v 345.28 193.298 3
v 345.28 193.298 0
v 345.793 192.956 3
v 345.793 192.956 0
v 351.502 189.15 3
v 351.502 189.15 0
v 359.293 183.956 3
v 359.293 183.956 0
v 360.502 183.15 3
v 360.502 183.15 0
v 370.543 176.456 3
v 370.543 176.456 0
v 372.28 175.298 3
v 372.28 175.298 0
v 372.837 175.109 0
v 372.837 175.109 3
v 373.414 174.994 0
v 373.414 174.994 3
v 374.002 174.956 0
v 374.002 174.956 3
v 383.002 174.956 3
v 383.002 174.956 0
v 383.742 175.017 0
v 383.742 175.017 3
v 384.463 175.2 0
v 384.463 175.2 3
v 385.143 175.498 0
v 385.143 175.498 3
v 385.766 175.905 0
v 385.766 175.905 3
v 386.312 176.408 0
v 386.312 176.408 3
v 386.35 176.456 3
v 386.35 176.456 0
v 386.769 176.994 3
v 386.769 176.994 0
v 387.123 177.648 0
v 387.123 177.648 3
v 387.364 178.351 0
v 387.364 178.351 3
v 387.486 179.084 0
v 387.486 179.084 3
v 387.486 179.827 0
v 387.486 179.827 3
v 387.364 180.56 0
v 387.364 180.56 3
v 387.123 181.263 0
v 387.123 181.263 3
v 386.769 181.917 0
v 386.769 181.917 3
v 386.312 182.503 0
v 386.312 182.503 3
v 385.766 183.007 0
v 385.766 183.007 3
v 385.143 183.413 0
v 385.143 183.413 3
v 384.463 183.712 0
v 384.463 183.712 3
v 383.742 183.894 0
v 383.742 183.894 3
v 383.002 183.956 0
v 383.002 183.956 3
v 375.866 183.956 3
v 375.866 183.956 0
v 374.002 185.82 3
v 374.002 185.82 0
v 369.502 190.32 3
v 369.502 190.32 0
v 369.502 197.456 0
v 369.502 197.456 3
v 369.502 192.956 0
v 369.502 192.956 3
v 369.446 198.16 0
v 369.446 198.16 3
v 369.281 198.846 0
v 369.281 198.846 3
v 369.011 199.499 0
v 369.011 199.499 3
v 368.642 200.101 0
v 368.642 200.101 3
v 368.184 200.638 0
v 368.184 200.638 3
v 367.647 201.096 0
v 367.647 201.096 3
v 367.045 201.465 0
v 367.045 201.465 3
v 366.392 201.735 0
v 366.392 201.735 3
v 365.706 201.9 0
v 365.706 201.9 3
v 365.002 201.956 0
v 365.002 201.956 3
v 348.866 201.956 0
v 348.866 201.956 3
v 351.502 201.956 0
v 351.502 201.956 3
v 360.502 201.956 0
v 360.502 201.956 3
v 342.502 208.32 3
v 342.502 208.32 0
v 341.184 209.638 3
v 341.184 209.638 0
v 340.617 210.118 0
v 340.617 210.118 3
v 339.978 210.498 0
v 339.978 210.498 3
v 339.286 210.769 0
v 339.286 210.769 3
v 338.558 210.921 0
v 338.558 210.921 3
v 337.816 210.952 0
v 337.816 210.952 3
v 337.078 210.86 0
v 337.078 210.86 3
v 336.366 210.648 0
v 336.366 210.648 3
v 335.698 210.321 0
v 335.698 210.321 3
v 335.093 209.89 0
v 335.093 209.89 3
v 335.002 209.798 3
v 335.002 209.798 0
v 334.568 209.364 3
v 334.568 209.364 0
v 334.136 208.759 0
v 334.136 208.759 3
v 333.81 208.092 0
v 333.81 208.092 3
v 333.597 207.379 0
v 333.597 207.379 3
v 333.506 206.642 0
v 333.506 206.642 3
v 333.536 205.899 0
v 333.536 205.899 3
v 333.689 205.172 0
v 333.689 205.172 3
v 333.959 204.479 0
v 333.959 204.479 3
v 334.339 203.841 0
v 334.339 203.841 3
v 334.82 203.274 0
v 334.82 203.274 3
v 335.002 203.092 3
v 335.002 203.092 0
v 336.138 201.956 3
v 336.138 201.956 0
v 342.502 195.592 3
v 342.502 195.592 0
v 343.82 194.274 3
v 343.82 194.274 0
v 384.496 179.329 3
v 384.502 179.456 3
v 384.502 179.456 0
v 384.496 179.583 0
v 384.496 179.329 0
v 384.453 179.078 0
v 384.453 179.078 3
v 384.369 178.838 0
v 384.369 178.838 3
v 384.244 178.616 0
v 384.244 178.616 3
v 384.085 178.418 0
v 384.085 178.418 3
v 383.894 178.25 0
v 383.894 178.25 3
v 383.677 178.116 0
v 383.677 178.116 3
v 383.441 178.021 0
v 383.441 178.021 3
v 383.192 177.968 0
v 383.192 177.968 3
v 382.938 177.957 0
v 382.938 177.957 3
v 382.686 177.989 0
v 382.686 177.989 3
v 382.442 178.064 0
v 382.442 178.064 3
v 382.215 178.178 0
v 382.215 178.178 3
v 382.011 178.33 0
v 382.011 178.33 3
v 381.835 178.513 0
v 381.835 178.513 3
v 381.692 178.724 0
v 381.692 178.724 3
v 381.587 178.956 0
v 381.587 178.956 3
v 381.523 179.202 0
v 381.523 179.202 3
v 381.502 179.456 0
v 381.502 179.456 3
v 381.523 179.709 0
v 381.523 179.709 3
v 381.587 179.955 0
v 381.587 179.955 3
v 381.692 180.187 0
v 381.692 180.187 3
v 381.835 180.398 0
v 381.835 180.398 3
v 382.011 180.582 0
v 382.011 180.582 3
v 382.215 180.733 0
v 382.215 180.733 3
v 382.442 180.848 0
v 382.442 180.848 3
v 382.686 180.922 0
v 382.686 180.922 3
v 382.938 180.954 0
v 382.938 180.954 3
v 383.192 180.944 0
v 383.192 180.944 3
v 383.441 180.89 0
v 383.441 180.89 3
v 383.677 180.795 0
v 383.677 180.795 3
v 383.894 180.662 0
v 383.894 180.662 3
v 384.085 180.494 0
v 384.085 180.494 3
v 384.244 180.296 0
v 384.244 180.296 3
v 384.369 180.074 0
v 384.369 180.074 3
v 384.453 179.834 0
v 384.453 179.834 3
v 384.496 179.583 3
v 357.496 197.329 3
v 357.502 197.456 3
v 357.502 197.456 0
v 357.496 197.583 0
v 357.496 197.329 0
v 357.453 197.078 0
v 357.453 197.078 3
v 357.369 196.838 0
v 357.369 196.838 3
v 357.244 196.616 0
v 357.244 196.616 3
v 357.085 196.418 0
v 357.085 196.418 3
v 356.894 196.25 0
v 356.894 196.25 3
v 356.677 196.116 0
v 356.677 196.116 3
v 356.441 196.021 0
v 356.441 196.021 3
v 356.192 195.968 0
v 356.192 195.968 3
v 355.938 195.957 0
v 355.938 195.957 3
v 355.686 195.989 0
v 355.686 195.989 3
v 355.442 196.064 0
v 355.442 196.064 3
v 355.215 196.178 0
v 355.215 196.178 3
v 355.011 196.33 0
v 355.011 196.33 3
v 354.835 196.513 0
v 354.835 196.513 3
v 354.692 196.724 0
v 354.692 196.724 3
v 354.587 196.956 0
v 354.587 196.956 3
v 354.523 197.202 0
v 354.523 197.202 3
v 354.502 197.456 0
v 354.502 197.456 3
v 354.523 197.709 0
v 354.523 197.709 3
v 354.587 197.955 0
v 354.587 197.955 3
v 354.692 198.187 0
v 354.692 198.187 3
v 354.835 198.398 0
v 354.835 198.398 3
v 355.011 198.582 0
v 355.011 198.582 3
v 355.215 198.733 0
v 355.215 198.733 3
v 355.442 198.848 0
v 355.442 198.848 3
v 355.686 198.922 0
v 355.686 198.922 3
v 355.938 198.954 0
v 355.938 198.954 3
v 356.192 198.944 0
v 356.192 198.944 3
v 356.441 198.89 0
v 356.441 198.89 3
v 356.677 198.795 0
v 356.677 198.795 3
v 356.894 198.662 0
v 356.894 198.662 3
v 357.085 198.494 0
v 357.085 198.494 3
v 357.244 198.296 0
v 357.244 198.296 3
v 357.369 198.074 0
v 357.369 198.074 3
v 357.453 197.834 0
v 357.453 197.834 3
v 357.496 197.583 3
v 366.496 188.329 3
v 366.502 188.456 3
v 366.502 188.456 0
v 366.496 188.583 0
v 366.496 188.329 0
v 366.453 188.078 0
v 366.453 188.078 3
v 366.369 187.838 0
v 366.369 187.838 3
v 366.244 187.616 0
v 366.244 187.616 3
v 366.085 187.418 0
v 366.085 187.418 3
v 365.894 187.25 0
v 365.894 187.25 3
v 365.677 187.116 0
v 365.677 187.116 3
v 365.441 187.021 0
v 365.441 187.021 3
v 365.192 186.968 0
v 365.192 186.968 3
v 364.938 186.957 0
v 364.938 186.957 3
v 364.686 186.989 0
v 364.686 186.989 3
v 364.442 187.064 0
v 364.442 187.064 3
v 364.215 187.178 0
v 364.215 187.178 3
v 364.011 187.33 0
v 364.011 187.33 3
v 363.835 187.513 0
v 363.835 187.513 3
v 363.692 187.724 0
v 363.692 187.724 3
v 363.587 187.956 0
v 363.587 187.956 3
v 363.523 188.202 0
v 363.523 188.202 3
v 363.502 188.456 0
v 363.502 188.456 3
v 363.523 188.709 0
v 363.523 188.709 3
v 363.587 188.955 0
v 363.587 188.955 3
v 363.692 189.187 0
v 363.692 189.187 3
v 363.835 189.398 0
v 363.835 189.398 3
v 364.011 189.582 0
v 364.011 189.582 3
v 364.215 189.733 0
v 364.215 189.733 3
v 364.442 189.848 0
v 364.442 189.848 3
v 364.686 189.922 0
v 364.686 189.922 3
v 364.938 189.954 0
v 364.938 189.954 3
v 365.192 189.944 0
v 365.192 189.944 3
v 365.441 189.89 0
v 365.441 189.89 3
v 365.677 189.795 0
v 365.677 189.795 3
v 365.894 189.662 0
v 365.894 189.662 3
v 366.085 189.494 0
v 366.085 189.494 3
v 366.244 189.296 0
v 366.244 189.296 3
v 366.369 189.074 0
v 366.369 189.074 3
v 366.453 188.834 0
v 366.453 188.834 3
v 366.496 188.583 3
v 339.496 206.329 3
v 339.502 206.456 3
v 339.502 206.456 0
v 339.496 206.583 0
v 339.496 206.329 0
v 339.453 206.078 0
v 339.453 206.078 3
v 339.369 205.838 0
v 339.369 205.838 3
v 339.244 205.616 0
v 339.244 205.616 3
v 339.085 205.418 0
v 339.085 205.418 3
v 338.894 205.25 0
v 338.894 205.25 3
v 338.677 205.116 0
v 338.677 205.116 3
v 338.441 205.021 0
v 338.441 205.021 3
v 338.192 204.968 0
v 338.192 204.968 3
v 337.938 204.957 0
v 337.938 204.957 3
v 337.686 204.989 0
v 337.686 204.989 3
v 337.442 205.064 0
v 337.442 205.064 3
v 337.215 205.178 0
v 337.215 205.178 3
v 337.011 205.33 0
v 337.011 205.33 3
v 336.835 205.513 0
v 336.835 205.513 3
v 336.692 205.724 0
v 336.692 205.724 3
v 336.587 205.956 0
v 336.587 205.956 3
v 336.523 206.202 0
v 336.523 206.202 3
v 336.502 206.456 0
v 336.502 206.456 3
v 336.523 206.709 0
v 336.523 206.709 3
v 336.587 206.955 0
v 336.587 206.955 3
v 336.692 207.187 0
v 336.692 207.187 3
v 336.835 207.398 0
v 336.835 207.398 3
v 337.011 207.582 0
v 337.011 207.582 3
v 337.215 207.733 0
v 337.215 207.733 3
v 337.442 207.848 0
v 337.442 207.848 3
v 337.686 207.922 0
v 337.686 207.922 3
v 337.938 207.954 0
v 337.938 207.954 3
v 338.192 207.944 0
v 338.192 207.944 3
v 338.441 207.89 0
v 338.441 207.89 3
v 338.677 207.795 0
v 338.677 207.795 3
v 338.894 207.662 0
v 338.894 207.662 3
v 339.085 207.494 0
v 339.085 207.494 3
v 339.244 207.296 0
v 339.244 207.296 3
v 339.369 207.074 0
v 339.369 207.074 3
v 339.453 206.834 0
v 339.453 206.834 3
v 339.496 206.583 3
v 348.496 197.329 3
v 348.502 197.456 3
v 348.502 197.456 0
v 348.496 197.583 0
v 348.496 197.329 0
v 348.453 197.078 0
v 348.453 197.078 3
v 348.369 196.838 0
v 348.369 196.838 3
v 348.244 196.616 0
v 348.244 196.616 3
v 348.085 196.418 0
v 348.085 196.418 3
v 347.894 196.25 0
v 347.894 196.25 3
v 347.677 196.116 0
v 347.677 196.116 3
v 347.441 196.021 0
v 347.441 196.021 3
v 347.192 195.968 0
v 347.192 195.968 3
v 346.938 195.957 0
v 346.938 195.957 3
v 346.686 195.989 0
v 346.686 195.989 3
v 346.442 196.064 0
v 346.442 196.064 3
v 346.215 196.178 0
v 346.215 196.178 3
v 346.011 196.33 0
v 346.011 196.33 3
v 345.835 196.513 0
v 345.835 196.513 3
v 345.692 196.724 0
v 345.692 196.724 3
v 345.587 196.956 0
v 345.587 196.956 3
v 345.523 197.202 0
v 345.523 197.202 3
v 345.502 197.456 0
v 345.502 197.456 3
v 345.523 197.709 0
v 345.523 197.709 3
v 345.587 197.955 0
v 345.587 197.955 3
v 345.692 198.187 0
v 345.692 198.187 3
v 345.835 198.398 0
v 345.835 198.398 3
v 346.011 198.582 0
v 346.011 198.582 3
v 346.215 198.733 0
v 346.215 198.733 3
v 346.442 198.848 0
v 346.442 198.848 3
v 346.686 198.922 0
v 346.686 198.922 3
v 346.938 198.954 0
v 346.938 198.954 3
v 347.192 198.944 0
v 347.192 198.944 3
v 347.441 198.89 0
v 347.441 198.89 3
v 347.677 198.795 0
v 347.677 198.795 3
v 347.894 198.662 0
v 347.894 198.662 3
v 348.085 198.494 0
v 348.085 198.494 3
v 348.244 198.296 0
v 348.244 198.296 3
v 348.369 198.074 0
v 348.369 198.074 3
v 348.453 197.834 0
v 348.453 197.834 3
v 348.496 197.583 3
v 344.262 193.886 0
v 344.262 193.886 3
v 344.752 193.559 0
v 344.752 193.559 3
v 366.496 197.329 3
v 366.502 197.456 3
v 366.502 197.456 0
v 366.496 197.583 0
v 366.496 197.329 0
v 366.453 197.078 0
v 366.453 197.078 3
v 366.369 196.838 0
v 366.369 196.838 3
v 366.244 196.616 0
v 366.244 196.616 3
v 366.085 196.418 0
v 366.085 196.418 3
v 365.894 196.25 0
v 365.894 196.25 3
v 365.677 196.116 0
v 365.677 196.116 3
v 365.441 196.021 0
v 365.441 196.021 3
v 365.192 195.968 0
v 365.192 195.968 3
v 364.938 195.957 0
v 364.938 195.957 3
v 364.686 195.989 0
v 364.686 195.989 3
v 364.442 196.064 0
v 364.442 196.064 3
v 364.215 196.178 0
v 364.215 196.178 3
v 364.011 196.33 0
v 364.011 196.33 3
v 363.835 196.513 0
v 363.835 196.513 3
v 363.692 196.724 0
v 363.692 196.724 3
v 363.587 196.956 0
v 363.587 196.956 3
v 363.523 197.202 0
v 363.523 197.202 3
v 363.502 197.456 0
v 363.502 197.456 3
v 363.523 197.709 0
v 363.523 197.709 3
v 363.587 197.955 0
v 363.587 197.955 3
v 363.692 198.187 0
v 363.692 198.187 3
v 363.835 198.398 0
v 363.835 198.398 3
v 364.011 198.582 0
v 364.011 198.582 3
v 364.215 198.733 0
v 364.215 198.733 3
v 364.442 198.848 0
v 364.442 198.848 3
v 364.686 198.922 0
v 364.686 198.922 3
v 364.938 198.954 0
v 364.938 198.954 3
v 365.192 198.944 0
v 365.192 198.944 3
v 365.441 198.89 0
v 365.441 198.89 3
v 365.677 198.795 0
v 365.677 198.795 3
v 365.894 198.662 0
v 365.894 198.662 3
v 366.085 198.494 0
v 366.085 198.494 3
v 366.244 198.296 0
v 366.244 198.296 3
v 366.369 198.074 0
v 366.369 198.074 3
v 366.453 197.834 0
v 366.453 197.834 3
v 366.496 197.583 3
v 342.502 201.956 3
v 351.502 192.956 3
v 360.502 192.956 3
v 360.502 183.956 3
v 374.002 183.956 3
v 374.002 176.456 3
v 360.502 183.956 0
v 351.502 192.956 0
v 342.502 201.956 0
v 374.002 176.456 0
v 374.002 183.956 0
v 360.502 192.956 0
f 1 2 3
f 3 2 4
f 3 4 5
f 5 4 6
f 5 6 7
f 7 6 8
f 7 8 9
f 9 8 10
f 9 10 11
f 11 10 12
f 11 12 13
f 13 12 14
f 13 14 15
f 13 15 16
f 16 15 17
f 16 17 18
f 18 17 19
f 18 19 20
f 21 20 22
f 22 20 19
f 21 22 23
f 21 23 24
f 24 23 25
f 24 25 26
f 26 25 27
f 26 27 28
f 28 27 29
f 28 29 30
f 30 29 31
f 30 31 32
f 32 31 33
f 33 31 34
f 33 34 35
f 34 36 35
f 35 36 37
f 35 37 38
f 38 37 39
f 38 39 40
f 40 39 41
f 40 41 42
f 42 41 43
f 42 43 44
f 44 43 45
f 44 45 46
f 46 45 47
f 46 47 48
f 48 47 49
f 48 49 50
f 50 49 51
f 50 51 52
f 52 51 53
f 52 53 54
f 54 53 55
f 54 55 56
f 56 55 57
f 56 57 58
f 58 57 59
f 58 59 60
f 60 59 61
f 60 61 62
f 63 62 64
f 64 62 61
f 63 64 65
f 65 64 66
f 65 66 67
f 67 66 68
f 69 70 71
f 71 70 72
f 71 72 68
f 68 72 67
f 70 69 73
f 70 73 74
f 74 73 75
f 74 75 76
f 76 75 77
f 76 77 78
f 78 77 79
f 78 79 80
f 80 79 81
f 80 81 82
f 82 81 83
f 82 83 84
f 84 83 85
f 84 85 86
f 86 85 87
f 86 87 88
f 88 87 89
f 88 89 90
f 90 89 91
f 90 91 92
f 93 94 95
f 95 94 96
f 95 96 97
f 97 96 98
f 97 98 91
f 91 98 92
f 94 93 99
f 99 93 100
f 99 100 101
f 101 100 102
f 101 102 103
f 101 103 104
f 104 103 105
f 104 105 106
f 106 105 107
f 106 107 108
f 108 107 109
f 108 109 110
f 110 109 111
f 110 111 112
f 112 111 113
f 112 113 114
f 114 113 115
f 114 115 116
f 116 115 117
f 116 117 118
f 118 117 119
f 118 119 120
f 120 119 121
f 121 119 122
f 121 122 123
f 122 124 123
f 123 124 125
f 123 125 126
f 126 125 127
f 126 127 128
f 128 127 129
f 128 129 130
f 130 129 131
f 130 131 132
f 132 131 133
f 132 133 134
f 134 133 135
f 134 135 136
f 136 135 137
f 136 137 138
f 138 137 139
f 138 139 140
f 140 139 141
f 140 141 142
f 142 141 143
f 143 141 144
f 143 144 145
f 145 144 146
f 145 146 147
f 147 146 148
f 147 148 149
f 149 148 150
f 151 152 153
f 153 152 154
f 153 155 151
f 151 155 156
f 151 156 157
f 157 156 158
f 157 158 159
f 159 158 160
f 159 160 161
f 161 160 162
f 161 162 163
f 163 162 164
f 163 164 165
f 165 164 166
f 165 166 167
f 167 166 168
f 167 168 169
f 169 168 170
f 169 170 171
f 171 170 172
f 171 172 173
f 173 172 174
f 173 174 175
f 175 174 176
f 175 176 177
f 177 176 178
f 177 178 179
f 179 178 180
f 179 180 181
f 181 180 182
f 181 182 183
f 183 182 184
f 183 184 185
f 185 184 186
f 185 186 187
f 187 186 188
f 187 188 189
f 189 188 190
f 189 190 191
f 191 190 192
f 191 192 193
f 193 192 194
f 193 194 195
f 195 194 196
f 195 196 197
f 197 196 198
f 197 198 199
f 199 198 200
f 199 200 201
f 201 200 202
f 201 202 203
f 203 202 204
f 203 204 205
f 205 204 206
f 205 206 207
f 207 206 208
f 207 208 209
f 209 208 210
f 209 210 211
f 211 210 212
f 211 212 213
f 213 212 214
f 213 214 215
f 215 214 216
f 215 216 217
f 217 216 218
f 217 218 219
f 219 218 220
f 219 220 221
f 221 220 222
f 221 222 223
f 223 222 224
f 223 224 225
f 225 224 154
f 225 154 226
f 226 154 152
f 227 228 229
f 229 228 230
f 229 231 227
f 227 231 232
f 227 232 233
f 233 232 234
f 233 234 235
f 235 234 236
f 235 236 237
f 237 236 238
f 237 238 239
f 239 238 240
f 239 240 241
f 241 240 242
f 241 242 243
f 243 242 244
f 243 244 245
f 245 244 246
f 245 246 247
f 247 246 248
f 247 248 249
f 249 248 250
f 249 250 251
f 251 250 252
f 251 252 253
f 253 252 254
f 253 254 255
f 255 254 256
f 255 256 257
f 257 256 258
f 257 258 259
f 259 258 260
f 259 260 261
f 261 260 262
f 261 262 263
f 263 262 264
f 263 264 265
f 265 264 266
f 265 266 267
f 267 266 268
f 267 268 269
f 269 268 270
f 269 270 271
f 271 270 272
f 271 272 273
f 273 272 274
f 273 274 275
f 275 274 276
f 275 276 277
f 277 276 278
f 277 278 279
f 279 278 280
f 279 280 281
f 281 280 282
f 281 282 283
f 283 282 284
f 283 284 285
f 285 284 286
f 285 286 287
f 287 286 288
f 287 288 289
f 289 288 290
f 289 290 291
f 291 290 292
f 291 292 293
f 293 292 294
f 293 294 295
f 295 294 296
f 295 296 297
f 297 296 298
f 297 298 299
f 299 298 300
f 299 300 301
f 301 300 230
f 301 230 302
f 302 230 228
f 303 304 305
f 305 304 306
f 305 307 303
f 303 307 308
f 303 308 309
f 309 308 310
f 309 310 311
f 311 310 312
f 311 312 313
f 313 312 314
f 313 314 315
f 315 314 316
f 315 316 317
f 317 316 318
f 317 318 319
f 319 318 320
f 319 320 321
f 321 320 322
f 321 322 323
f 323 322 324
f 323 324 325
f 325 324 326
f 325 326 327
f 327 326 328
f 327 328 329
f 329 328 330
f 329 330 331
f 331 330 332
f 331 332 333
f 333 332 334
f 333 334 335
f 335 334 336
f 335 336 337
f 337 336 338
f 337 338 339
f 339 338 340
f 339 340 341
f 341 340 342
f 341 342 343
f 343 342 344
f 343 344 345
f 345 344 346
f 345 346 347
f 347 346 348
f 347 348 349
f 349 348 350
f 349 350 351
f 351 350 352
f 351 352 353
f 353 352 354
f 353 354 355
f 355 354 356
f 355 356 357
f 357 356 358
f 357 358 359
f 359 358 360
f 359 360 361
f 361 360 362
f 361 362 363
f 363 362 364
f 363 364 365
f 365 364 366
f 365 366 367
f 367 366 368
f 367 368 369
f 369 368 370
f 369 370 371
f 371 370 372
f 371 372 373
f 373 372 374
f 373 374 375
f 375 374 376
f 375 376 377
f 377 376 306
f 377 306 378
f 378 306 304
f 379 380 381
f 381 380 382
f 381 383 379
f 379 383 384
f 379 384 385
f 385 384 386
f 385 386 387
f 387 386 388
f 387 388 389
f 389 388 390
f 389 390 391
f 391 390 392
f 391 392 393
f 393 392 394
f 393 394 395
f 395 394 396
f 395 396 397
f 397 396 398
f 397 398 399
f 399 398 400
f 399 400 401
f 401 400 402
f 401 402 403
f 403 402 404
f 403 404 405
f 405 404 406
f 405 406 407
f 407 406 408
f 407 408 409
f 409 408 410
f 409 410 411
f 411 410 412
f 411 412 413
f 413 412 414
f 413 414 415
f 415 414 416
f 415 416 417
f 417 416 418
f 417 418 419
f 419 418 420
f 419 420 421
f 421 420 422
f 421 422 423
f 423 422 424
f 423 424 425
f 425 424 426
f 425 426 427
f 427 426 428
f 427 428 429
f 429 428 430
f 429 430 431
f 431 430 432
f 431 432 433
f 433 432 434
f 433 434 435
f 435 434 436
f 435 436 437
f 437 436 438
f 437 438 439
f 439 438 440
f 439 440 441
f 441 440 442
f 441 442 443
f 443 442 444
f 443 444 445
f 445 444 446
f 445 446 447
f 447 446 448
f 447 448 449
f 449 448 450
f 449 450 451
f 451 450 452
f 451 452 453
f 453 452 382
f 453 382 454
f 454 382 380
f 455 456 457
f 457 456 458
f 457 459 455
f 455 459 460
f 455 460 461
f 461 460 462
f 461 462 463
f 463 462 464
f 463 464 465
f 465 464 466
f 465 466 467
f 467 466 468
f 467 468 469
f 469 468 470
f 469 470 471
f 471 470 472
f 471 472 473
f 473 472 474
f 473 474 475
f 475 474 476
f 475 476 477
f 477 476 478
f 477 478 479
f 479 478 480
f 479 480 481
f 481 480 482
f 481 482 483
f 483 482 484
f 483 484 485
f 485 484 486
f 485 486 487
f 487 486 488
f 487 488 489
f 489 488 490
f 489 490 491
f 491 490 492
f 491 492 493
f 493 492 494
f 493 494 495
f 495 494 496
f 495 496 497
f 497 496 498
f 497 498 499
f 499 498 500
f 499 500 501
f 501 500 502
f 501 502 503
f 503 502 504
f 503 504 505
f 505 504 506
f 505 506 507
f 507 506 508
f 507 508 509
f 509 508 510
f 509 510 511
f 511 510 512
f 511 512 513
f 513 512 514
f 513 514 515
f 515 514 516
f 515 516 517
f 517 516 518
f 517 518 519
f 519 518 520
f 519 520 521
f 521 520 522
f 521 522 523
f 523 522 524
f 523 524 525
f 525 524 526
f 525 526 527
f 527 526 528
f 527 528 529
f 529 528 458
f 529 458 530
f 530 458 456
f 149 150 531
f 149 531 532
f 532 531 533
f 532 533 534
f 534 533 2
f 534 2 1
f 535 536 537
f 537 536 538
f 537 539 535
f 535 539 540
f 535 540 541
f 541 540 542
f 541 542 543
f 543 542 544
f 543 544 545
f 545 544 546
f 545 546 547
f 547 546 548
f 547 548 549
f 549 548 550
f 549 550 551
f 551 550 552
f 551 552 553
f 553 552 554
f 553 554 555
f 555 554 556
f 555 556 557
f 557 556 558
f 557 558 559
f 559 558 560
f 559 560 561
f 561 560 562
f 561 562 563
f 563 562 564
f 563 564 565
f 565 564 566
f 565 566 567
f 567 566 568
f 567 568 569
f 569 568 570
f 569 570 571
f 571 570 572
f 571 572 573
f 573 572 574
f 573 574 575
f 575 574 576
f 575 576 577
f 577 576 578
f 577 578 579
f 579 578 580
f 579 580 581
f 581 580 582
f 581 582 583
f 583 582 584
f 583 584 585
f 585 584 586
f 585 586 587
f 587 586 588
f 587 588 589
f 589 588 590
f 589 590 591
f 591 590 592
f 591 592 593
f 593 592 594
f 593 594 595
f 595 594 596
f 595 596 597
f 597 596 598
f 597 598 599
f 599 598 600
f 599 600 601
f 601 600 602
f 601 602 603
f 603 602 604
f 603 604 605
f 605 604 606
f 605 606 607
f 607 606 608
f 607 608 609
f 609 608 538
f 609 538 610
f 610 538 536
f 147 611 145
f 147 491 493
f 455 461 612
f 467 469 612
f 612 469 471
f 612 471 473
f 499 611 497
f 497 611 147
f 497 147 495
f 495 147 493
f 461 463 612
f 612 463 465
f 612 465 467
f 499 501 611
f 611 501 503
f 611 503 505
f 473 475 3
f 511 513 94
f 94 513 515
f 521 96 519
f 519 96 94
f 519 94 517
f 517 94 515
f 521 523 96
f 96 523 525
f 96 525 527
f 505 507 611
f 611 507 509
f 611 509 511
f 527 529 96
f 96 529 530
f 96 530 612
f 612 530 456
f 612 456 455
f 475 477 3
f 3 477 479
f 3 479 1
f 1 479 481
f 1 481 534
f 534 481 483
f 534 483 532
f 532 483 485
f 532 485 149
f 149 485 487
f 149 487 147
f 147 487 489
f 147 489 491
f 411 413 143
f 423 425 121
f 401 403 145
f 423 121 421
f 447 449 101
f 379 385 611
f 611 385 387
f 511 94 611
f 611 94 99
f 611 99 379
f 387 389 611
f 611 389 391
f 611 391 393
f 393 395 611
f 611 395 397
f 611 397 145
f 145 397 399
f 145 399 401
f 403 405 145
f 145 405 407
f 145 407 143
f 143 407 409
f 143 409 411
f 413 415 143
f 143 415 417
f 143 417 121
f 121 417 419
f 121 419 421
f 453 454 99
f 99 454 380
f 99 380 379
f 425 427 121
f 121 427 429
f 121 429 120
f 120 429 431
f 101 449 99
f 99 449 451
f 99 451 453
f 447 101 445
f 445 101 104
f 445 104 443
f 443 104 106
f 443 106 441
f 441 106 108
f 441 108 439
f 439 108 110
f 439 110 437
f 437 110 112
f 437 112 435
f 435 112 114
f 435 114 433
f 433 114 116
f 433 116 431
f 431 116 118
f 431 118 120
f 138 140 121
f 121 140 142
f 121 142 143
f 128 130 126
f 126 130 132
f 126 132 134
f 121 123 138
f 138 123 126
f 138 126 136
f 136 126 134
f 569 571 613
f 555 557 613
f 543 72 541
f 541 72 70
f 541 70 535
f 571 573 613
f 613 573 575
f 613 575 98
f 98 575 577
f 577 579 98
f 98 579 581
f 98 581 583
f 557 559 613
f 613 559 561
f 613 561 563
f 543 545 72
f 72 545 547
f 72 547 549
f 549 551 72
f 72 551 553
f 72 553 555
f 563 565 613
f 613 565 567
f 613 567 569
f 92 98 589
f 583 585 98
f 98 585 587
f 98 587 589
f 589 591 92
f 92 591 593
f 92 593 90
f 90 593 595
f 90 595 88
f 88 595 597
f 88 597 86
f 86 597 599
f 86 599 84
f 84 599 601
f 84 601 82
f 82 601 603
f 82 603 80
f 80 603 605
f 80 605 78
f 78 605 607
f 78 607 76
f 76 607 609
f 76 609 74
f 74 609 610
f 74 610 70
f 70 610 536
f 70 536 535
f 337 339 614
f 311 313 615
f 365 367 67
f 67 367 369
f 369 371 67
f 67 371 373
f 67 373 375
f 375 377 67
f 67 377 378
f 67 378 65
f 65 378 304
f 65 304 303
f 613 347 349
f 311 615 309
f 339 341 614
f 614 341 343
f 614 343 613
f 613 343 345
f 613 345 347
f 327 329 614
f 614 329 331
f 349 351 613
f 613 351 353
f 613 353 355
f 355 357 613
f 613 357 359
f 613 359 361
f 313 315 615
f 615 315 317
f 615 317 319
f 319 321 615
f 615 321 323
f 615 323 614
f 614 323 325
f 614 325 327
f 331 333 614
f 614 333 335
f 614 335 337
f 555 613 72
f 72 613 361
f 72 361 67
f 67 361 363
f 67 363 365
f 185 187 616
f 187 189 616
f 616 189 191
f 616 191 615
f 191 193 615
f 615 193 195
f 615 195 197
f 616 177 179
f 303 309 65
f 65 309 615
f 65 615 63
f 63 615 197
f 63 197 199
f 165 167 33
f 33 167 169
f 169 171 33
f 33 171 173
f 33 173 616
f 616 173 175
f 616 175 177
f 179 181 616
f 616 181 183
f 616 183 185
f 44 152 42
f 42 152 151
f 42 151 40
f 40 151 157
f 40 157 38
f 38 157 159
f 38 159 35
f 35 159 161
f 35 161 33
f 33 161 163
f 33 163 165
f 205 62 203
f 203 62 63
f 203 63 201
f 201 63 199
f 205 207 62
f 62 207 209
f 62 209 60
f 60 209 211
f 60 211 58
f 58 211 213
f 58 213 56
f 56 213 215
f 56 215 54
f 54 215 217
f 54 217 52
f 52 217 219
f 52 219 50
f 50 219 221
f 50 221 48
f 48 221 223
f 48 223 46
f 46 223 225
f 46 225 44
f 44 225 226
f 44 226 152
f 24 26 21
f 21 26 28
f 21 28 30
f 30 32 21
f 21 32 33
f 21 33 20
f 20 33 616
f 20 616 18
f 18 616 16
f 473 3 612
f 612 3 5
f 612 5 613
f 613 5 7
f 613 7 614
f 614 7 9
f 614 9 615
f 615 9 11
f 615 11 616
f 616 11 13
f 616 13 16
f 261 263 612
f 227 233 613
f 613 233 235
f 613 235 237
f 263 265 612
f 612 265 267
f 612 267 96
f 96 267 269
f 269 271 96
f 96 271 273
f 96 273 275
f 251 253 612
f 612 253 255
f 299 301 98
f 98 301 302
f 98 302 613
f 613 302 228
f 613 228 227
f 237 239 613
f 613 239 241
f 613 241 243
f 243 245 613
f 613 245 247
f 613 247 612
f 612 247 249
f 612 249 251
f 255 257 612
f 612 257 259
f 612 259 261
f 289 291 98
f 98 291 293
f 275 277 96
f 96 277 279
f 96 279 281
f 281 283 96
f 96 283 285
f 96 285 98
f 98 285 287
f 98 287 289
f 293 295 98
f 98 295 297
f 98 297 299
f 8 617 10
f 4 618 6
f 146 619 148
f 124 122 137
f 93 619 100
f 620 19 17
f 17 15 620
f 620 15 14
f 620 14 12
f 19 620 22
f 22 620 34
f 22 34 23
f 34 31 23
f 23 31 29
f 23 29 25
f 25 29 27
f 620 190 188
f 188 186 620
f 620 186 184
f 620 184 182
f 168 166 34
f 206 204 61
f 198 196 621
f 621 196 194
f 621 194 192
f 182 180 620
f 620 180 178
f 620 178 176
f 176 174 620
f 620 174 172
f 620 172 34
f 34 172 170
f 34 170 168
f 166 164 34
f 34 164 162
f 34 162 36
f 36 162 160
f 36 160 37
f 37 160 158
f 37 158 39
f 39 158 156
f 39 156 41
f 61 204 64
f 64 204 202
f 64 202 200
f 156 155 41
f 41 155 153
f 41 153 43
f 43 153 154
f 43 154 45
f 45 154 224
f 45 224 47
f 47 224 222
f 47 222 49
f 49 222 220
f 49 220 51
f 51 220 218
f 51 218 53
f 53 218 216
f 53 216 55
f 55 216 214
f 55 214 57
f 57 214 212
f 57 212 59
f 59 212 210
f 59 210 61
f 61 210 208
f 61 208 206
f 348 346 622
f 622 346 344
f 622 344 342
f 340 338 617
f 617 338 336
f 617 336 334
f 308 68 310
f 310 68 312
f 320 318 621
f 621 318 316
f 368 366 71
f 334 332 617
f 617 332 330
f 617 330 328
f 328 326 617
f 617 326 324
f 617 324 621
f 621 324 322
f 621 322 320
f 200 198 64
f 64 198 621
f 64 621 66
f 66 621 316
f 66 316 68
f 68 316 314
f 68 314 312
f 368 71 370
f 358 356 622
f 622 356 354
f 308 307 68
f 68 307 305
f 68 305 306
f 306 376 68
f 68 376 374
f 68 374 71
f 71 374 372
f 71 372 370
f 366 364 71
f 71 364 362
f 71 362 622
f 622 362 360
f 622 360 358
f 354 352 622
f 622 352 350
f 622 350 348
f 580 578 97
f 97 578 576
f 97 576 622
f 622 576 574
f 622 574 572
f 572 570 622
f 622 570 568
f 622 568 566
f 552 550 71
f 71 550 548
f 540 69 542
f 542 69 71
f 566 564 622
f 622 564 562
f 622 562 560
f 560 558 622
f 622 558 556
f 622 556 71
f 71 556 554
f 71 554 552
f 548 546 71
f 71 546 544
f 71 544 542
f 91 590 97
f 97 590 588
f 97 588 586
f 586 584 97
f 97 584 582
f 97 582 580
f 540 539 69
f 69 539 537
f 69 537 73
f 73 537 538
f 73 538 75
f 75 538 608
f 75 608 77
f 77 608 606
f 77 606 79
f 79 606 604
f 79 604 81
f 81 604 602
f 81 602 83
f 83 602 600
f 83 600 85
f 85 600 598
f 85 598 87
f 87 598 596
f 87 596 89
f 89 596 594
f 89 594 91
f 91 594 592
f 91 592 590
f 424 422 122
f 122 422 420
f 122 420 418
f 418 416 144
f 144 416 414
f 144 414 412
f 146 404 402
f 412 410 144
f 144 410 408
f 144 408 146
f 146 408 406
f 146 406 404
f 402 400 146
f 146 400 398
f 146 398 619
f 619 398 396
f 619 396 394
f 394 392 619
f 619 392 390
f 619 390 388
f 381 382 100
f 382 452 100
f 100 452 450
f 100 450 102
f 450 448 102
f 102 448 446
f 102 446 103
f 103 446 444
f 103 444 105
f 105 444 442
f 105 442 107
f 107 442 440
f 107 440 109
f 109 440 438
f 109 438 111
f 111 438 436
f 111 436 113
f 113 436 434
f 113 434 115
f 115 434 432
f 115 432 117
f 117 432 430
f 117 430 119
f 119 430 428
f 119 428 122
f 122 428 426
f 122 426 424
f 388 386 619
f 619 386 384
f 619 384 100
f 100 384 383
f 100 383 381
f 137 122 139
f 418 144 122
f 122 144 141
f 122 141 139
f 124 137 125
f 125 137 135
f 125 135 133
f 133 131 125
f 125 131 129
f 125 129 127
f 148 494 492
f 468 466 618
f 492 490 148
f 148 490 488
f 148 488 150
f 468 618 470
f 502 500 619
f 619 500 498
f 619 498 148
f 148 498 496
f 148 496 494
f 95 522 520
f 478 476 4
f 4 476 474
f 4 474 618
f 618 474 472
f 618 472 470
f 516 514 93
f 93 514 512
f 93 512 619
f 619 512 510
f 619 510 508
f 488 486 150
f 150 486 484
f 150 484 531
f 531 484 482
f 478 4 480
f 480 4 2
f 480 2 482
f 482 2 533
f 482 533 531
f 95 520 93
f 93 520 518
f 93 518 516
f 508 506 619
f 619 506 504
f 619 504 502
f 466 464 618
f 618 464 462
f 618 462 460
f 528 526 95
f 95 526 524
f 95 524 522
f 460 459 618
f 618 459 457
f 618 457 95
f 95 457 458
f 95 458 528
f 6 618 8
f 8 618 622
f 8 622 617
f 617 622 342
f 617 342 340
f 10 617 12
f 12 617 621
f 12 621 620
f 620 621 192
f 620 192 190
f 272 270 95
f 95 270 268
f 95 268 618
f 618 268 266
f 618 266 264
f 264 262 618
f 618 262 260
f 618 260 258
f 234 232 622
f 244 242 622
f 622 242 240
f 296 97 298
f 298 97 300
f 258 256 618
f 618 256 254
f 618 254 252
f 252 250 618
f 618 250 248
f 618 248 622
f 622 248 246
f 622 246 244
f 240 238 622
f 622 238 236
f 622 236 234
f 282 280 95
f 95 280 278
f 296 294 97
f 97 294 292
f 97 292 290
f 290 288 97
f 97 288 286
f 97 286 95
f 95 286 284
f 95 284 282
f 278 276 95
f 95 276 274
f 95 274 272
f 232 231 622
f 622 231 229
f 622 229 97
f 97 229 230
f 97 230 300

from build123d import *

# Parameters (mm, degrees)
MODEL_R                 = 1.5
SALIENTE_EXTRUIR1_DEPTH = 3


with BuildPart() as part:
    # Model → Saliente-Extruir1 (new body)
    with BuildSketch(Plane.XY):
        with BuildLine():
            Line((365.001663828, 201.955720999), (348.865624859, 201.955720999))
            Line((348.865624859, 201.955720999), (341.183644344, 209.637701515))
            ThreePointArc((341.183644344, 209.637701515), (334.819683313, 209.637701515), (334.819683313, 203.273740484))
            Line((334.819683313, 203.273740484), (343.819683313, 194.273740484))
            ThreePointArc((343.819683313, 194.273740484), (344.50159778, 193.714107744), (345.279588383, 193.298263103))
            Line((345.279588383, 193.298263103), (370.826347096, 176.267090628))
            Line((370.826347096, 176.267090628), (372.279588383, 175.298263103))
            ThreePointArc((372.279588383, 175.298263103), (373.123757379, 175.042187237), (374.001663828, 174.955720999))
            Line((374.001663828, 174.955720999), (383.001663828, 174.955720999))
            ThreePointArc((383.001663828, 174.955720999), (387.501663828, 179.455720999), (383.001663828, 183.955720999))
            Line((383.001663828, 183.955720999), (375.865624859, 183.955720999))
            Line((375.865624859, 183.955720999), (369.501663828, 190.31968203))
            Line((369.501663828, 190.31968203), (369.501663828, 197.455720999))
            ThreePointArc((369.501663828, 197.455720999), (368.183644344, 200.637701515), (365.001663828, 201.955720999))
        make_face()
        with Locations((383.001663828, 179.455720999)):
            Circle(MODEL_R, mode=Mode.SUBTRACT)
        with Locations((365.001663828, 188.455720999)):
            Circle(MODEL_R, mode=Mode.SUBTRACT)
        with Locations((347.001663829, 197.455720999)):
            Circle(MODEL_R, mode=Mode.SUBTRACT)
        with Locations((356.001663828, 197.455720999)):
            Circle(MODEL_R, mode=Mode.SUBTRACT)
        with Locations((338.001663828, 206.455720999)):
            Circle(MODEL_R, mode=Mode.SUBTRACT)
        with Locations((365.001663828, 197.455720999)):
            Circle(MODEL_R, mode=Mode.SUBTRACT)
    extrude(amount=SALIENTE_EXTRUIR1_DEPTH)


solid = part.part
